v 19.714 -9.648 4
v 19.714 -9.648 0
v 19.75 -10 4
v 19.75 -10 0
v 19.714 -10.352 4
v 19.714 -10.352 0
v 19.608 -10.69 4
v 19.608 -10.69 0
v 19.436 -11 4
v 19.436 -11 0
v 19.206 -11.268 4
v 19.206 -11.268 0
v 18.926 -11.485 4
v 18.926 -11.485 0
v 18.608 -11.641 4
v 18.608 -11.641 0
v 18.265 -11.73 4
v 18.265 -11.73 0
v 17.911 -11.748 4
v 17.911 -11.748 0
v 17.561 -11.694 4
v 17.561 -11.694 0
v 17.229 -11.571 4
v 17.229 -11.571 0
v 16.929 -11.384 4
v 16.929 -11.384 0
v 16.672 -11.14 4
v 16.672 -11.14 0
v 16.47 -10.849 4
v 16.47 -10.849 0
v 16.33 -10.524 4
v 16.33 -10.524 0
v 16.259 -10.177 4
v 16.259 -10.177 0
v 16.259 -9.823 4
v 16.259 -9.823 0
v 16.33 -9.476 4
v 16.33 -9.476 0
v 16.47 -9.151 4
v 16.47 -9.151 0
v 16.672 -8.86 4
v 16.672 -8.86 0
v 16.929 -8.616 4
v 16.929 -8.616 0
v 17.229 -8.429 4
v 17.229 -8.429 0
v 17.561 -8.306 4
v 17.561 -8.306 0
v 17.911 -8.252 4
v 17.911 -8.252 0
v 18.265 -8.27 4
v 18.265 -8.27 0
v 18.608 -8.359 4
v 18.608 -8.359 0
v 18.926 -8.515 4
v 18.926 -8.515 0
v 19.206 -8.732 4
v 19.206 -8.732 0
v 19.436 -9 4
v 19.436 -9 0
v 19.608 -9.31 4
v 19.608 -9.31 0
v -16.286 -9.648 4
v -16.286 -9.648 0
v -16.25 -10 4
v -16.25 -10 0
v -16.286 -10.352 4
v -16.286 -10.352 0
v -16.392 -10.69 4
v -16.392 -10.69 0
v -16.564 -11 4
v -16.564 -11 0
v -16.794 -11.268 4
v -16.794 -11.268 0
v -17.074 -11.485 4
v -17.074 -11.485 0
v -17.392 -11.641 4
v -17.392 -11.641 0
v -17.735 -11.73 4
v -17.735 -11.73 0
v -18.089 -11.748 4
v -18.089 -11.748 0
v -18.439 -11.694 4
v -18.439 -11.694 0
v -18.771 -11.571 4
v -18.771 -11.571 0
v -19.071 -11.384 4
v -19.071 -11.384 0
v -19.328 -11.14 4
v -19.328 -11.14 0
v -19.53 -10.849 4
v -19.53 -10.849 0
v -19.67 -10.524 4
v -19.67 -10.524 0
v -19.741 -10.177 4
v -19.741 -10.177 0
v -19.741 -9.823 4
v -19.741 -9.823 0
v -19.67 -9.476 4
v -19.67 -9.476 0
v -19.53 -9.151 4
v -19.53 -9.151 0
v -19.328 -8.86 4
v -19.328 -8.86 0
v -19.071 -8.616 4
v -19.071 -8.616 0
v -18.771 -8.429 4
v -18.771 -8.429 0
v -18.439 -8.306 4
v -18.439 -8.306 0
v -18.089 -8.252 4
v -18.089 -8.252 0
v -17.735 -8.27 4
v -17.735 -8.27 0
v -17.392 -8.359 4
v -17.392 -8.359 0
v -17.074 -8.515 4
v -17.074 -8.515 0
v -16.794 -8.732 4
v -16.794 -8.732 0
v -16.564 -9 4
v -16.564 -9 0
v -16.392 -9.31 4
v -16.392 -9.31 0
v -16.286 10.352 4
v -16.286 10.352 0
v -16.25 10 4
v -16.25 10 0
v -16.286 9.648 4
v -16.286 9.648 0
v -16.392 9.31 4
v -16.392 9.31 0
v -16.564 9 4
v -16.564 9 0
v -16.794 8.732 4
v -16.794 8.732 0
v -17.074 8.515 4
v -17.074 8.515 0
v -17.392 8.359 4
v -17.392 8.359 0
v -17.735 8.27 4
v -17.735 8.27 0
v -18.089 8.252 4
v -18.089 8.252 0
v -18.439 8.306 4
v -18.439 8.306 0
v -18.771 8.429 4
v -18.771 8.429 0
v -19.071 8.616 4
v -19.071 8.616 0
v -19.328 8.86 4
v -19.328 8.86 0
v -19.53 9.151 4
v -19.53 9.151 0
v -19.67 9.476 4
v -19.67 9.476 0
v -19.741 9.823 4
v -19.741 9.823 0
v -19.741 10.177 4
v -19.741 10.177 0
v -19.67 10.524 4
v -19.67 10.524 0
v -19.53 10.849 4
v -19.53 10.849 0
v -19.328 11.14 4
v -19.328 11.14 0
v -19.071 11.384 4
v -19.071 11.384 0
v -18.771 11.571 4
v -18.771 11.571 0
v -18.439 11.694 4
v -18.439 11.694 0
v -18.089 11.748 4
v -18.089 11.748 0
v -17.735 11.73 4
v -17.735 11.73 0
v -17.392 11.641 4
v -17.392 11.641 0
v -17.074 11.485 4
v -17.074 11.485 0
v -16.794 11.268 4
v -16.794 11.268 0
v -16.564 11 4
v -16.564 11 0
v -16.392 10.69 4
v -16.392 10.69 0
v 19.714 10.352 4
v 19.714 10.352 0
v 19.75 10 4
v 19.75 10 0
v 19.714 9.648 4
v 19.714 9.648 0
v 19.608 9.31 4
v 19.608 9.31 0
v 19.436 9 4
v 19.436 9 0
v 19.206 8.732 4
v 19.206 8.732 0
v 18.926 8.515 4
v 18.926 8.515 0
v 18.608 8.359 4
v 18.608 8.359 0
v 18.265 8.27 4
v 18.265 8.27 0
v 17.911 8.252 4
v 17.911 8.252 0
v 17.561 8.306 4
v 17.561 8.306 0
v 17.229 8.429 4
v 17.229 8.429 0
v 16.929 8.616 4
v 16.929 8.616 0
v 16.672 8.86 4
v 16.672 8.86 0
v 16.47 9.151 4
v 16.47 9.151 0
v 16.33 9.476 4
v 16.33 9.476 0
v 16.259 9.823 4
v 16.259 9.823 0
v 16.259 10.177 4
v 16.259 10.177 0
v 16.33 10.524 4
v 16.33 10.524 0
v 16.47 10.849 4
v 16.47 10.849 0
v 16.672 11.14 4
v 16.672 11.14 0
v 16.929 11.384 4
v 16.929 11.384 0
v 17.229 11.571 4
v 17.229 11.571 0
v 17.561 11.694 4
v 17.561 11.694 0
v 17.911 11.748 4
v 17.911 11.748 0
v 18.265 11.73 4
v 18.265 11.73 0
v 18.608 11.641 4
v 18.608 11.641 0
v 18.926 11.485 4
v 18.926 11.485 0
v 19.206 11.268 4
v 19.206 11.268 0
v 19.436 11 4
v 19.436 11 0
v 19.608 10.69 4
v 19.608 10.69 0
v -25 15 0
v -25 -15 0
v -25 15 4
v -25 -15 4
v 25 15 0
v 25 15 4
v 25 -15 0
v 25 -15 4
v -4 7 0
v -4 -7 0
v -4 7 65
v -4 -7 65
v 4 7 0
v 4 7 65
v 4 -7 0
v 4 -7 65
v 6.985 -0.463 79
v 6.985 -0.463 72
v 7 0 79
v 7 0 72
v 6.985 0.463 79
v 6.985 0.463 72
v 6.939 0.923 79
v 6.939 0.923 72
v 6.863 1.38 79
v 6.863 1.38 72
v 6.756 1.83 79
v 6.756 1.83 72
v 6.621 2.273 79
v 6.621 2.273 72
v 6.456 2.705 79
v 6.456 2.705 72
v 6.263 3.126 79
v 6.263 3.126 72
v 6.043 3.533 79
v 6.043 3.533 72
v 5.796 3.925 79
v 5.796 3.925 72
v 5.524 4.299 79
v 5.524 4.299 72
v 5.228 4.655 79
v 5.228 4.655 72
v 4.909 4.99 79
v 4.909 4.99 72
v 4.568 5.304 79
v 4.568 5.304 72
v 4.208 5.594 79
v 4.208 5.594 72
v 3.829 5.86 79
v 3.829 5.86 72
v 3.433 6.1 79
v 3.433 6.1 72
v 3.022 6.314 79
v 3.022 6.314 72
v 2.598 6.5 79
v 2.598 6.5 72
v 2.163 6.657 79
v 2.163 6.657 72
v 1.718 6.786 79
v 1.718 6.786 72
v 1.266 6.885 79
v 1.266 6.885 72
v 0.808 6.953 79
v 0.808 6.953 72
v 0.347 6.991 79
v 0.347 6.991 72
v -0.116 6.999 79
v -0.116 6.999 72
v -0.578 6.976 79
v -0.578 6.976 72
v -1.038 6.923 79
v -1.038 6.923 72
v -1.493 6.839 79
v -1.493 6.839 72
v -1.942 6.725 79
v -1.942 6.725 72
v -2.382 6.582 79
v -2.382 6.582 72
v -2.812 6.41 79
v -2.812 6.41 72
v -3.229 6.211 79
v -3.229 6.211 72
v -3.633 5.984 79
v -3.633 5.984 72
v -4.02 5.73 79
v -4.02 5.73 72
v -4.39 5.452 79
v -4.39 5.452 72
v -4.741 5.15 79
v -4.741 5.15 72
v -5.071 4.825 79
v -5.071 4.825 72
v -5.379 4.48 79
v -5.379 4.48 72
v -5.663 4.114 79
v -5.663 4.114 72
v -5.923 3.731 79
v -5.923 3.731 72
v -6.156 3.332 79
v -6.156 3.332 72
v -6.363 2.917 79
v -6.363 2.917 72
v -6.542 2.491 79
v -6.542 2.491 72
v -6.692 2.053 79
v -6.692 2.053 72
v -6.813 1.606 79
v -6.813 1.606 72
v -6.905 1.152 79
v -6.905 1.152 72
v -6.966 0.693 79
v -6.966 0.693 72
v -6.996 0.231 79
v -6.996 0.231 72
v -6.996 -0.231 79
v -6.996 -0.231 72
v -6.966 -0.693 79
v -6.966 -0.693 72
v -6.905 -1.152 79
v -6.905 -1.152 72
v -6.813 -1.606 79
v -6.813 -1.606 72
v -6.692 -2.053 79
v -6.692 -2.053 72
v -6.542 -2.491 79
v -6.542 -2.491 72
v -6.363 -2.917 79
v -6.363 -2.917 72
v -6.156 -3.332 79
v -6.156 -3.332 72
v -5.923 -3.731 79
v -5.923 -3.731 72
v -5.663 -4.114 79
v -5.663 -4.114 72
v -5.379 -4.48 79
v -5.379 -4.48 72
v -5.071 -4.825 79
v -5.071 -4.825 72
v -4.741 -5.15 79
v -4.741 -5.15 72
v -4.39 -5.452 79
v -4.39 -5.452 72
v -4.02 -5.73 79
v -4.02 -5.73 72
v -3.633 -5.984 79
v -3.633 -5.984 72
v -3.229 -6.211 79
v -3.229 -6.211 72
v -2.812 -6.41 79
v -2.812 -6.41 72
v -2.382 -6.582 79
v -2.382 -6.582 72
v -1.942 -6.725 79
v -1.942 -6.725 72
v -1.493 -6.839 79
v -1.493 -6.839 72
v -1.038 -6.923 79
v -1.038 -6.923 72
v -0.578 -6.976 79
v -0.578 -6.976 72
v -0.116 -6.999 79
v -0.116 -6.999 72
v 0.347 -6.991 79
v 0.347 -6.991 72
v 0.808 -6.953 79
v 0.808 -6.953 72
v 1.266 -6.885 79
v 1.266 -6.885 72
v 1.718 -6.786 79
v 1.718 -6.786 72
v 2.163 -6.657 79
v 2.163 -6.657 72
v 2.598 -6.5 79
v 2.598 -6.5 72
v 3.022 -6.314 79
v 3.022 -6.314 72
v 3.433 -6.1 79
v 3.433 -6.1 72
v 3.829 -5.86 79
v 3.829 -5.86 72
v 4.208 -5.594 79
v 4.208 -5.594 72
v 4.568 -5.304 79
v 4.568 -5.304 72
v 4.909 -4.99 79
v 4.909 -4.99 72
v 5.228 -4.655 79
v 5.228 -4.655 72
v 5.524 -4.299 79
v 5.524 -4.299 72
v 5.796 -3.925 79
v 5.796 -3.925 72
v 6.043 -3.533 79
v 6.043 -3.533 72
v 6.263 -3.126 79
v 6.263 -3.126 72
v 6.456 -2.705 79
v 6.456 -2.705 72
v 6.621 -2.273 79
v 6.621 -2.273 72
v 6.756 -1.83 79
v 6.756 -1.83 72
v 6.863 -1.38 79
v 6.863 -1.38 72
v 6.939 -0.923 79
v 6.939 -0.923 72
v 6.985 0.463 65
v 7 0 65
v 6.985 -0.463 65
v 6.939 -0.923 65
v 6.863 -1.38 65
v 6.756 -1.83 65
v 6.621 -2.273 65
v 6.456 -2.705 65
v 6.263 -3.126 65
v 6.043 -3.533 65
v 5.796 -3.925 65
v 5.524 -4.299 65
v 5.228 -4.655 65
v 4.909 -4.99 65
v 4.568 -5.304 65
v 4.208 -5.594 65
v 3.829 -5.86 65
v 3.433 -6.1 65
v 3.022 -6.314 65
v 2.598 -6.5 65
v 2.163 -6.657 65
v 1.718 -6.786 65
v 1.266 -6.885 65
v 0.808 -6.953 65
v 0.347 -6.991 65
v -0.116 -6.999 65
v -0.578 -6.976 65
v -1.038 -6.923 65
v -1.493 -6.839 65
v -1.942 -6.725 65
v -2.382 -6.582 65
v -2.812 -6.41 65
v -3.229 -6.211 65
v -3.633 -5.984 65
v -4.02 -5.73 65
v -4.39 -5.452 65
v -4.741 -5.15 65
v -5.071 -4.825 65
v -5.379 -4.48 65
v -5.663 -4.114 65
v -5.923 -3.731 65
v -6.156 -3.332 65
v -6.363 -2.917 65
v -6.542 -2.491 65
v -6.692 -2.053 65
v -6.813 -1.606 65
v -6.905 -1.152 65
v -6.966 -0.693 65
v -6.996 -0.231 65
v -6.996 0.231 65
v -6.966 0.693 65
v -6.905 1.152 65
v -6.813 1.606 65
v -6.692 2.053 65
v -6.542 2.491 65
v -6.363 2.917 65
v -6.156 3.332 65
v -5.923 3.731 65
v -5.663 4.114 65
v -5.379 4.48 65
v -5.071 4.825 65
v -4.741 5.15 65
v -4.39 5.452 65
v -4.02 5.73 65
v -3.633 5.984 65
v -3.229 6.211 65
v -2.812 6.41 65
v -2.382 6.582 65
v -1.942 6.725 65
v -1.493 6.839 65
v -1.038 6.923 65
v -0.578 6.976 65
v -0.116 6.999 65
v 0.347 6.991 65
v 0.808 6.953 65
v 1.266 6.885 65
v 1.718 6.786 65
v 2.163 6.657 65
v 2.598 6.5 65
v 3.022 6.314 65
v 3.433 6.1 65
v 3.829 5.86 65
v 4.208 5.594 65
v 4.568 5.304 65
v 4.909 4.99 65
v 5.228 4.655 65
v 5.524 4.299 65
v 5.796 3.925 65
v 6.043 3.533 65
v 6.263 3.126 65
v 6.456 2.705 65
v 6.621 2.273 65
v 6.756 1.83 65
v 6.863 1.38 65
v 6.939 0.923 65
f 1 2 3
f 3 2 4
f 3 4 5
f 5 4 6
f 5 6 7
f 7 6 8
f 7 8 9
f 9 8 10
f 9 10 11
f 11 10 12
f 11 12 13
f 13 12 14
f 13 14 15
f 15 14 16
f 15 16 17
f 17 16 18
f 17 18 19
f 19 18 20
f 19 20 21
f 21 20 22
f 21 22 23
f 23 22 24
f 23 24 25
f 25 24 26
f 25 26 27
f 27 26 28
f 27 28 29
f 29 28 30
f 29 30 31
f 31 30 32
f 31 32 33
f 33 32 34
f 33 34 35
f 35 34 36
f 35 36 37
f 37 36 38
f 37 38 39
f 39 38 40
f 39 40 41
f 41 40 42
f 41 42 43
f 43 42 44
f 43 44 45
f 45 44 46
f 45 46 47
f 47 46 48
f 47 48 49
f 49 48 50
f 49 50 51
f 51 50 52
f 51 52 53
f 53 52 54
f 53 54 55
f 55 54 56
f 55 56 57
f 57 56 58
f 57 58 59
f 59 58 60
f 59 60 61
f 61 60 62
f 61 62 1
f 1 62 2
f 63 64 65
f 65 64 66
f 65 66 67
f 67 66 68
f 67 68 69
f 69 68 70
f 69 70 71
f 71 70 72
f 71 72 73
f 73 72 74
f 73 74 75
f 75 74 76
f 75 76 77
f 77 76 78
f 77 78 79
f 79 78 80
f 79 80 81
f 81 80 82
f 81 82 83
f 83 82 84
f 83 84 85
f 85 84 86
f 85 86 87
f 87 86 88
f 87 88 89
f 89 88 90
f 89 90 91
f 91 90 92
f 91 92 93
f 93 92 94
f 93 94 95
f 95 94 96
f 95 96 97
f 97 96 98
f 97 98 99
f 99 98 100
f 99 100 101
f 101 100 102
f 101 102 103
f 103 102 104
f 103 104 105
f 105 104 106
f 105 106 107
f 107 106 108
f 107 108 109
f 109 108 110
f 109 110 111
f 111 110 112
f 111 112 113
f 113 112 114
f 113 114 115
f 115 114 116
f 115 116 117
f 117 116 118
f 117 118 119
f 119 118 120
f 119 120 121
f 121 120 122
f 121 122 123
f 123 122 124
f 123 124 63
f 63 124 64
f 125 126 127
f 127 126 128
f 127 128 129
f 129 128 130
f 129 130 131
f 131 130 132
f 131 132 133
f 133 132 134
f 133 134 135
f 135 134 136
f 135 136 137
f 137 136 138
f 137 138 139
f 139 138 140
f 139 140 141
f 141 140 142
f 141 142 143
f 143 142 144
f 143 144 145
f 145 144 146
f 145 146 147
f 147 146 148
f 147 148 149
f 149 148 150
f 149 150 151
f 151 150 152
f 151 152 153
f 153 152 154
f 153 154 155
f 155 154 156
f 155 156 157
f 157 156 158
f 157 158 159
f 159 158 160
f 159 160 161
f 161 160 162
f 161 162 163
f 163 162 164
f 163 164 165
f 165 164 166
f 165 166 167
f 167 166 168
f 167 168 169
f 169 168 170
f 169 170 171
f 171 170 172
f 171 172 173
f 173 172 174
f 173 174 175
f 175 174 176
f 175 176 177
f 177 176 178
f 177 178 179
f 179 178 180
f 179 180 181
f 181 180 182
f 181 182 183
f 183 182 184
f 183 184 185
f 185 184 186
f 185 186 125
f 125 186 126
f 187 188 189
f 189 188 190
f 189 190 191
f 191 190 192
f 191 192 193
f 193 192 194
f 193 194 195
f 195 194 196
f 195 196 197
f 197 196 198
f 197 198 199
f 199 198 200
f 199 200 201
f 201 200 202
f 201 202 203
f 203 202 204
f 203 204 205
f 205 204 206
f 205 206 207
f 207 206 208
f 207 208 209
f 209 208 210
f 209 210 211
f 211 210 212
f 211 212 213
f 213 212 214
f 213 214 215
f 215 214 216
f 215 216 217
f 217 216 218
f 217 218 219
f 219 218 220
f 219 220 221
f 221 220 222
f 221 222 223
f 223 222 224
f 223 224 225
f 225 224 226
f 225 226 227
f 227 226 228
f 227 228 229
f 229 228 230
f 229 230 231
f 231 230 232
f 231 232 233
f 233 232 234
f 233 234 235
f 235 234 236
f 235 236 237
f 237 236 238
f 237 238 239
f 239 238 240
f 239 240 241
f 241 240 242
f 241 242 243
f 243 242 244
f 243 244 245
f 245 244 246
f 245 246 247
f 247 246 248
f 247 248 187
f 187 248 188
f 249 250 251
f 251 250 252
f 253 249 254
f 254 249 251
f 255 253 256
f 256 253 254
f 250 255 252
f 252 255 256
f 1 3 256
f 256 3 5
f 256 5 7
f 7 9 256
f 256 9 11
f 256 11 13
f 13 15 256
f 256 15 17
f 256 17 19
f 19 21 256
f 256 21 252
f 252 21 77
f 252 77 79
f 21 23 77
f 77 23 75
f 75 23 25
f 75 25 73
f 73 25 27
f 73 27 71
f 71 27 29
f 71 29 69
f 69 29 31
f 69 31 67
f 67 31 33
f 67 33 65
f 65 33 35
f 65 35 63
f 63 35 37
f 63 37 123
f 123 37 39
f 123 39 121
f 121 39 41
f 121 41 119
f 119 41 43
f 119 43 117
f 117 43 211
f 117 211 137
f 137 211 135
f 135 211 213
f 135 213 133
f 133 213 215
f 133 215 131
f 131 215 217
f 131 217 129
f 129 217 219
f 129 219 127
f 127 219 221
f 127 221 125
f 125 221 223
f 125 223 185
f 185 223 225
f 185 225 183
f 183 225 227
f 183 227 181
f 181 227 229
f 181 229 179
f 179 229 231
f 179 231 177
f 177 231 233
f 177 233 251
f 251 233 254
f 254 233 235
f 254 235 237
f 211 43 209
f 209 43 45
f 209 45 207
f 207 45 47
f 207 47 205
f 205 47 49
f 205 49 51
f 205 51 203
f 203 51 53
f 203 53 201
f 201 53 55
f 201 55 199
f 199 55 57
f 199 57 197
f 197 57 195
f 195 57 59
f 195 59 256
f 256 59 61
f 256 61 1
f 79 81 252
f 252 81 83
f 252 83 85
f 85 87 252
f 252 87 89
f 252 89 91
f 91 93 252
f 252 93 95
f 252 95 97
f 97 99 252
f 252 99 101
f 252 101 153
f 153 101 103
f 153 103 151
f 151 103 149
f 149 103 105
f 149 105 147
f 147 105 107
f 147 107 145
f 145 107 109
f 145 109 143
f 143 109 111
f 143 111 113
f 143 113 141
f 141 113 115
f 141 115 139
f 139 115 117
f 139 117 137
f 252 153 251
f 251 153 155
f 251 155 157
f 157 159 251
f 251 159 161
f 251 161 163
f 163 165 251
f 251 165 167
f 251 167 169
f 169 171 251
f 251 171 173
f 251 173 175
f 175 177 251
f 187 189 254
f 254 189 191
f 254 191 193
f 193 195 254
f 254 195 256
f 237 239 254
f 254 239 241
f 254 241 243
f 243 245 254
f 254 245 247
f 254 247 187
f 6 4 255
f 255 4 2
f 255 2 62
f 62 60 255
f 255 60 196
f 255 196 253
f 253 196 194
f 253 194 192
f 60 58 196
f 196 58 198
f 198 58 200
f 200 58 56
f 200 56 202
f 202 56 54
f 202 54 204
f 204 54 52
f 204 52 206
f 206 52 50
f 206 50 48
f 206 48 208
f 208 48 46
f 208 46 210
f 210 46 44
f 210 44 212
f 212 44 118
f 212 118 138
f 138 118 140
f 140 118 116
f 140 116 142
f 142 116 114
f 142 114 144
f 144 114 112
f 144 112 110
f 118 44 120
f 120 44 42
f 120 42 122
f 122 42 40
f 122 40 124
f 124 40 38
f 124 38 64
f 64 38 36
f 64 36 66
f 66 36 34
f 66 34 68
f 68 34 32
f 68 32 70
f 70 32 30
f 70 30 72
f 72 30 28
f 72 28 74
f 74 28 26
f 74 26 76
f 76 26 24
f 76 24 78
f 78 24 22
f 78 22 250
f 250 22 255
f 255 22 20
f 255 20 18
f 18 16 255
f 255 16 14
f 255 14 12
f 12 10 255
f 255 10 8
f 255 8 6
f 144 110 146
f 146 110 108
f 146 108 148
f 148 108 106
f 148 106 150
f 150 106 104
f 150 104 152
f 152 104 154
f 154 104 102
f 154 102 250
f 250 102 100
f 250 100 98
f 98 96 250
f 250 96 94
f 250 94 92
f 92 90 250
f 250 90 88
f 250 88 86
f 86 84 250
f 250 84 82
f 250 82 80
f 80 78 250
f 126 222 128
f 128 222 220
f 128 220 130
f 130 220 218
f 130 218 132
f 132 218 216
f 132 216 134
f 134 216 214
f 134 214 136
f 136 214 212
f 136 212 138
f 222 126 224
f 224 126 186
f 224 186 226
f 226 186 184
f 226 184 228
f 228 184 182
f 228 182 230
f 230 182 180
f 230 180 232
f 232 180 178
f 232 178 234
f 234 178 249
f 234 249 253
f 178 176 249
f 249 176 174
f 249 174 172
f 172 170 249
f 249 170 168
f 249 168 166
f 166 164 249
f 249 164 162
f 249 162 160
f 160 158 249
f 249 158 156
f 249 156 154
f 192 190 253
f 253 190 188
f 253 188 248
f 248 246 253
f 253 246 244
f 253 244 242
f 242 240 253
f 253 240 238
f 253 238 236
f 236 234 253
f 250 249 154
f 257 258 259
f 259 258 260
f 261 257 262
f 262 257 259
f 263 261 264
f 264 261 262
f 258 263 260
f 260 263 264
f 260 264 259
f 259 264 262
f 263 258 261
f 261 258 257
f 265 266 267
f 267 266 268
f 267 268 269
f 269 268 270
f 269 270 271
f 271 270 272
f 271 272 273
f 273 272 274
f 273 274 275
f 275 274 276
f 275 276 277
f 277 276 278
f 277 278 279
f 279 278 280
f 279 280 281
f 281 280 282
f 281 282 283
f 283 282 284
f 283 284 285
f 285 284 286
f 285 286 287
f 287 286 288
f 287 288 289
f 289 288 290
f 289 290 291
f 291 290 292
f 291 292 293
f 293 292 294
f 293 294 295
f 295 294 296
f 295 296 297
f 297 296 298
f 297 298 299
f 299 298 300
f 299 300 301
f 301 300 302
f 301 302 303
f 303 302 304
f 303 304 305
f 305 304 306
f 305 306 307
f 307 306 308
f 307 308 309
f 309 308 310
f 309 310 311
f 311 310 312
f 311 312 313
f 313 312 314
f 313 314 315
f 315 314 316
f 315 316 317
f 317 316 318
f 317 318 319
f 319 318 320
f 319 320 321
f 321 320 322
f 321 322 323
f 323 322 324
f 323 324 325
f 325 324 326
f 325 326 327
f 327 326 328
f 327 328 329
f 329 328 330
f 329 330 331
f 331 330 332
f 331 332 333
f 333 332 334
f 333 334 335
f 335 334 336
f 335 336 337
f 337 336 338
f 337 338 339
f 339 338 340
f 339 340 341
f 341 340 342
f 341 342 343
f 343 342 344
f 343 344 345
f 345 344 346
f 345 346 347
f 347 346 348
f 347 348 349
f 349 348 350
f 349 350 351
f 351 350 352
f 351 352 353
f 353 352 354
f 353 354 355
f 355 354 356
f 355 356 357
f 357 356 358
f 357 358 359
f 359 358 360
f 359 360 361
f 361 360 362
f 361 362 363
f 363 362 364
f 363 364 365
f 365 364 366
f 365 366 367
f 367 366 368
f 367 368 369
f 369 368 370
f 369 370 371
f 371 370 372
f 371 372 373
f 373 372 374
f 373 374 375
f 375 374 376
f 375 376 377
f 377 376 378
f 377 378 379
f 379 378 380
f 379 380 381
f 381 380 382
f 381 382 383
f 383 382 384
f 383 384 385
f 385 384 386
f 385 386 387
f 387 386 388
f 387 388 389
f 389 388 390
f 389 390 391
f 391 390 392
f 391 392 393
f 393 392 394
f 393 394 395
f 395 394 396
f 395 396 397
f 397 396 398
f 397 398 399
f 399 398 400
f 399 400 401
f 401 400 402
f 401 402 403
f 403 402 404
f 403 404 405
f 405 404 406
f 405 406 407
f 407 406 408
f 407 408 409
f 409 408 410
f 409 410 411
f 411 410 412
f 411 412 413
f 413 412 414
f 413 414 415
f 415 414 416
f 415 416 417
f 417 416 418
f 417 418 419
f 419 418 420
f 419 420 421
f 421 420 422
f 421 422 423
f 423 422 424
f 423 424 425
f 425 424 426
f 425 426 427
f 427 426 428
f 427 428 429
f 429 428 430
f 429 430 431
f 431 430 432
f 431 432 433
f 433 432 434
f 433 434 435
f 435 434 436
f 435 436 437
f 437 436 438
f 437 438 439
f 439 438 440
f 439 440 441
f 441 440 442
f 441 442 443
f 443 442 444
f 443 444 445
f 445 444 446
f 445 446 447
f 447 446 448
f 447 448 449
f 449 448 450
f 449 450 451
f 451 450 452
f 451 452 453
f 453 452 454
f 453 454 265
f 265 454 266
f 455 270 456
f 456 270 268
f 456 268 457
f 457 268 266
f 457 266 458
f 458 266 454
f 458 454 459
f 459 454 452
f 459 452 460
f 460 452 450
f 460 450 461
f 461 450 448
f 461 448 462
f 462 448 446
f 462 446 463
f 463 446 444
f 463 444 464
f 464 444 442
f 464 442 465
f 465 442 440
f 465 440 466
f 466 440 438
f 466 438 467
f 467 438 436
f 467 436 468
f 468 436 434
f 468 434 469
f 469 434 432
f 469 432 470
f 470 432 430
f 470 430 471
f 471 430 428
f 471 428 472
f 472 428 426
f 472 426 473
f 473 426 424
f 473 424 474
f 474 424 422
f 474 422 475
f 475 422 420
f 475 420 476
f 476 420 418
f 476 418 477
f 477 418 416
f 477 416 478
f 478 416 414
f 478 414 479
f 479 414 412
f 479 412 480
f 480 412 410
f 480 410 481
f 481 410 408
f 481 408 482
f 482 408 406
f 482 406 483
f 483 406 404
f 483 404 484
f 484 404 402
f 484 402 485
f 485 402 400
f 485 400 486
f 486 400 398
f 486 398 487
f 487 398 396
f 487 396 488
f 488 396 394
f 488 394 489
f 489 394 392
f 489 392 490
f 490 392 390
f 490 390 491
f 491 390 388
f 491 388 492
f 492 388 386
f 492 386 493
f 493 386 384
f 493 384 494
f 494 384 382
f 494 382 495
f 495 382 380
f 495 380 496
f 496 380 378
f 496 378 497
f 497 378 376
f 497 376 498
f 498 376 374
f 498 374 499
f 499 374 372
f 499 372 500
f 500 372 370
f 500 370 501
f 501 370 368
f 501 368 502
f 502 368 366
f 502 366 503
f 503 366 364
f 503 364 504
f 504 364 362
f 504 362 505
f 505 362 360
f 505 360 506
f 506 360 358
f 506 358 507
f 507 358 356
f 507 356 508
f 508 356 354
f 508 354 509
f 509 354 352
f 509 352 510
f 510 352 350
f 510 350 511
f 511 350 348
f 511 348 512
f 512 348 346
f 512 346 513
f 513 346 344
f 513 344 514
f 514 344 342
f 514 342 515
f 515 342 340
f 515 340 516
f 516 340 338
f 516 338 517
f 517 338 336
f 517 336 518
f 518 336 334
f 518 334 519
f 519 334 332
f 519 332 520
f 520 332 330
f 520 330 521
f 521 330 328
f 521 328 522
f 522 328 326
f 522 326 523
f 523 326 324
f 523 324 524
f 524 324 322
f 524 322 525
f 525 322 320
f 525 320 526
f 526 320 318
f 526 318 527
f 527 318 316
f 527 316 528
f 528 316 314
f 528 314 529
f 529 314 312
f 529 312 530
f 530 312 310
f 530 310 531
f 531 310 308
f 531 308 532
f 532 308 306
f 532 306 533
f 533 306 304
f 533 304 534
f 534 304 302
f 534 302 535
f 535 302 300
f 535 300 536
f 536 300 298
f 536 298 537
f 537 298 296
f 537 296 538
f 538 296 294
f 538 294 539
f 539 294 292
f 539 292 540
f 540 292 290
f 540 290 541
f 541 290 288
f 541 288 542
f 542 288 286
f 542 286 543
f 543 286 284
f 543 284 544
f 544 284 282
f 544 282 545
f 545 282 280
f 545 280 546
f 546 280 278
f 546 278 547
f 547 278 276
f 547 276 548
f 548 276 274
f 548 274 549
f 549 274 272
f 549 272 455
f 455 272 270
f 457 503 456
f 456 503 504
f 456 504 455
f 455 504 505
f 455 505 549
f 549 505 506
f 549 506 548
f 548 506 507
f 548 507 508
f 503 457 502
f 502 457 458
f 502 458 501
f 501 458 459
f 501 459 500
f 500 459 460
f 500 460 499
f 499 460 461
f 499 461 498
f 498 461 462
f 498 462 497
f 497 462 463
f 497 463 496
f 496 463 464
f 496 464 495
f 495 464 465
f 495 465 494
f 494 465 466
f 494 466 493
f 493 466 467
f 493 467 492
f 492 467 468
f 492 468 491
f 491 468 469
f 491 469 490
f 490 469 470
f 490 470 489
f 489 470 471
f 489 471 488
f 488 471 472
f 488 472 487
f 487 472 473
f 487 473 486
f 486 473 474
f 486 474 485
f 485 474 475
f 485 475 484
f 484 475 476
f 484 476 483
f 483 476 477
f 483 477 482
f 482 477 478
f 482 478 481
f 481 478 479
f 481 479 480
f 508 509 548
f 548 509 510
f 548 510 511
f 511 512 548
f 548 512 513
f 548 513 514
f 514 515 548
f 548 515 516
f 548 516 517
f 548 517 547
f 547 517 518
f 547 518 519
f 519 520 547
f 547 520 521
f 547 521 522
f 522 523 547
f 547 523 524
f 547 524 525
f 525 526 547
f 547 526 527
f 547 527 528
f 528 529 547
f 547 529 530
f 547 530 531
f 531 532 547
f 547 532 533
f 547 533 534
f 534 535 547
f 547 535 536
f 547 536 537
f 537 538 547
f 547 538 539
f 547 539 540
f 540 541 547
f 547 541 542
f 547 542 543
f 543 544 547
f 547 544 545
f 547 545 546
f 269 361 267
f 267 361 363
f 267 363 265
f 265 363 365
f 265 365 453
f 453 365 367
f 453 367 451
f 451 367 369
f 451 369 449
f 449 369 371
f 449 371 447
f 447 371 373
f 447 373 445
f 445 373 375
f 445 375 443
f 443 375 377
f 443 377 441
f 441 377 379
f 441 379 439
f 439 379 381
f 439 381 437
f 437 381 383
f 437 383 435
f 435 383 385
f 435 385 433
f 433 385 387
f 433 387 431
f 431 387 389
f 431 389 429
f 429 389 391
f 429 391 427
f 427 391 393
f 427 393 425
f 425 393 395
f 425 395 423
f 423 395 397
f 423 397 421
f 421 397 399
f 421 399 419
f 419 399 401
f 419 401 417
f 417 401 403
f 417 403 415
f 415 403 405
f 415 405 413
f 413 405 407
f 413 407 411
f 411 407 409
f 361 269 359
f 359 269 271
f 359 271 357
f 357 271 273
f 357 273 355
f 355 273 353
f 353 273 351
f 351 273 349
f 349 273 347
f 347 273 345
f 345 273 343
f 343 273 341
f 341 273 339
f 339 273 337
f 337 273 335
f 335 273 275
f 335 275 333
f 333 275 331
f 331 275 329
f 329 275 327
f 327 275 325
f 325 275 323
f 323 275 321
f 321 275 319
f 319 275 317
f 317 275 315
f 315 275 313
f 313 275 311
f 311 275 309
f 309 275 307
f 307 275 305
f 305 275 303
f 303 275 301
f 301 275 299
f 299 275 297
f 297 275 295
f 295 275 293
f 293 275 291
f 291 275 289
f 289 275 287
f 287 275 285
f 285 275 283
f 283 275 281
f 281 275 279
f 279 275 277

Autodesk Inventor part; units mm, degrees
ref_plane "YZ Plane" through (0, 0, 0) normal (1, 0, 0) x (0, 1, 0)
ref_plane "XZ Plane" through (0, 0, 0) normal (0, 1, 0) x (-1, 0, 0)
sketch "Skizze1" plane through (0, 0, 0) normal (0, 0, 1) x (1, 0, 0)
  line L0 (-25, -15) -> (25, -15)
  line L1 (25, -15) -> (25, 15)
  line L2 (25, 15) -> (-25, 15)
  line L3 (-25, 15) -> (-25, -15)
extrude "Extrusion1" add sketch "Skizze1" along normal blind 4
sketch "Skizze2" plane through (0, 0, 0) normal (0, 0, 1) x (1, 0, 0)
  line L0 (-4, -7) -> (4, -7)
  line L1 (4, -7) -> (4, 7)
  line L2 (4, 7) -> (-4, 7)
  line L3 (-4, 7) -> (-4, -7)
extrude "Extrusion2" add sketch "Skizze2" along normal blind 65 separate body
ref_plane "Arbeitsebene1" through (0, 0, 65) normal (0, 0, 1) x (1, 0, 0)
sketch "Skizze3" plane through (0, 0, 65) normal (0, 0, 1) x (1, 0, 0)
  circle A0 centre (0, 0) radius 7
extrude "Extrusion3" add sketch "Skizze3" along normal blind 14 separate body
sketch "Skizze4" plane through (0, 0, 0) normal (0, 1, 0) x (-1, 0, 0)
  line L0 (4, 4) -> (12, 4)
  line L1 (12, 4) -> (4, 55)
  line L2 (4, 55) -> (4, 4)
sketch "Skizze5" plane through (0, 0, 0) normal (0, 1, 0) x (-1, 0, 0)
  line L0 (-4, 4) -> (-12, 4)
  line L1 (-12, 4) -> (-4, 55)
  line L2 (-4, 55) -> (-4, 4)
sketch "Skizze6" plane through (0, 0, 0) normal (1, 0, 0) x (0, 1, 0)
  circle A0 centre (0, 72) radius 4.25
extrude "Extrusion4" cut sketch "Skizze6" along normal mid plane 51 bodies 1
sketch "Skizze7" plane through (0, 0, 0) normal (0, 0, 1) x (1, 0, 0)
  circle A0 centre (-18, -10) radius 1.75
  circle A1 centre (-18, 10) radius 1.75
  circle A2 centre (18, -10) radius 1.75
  circle A3 centre (18, 10) radius 1.75
extrude "Extrusion5" cut sketch "Skizze7" along normal blind 5 bodies 1
properties part number "Stuetze_v2"
